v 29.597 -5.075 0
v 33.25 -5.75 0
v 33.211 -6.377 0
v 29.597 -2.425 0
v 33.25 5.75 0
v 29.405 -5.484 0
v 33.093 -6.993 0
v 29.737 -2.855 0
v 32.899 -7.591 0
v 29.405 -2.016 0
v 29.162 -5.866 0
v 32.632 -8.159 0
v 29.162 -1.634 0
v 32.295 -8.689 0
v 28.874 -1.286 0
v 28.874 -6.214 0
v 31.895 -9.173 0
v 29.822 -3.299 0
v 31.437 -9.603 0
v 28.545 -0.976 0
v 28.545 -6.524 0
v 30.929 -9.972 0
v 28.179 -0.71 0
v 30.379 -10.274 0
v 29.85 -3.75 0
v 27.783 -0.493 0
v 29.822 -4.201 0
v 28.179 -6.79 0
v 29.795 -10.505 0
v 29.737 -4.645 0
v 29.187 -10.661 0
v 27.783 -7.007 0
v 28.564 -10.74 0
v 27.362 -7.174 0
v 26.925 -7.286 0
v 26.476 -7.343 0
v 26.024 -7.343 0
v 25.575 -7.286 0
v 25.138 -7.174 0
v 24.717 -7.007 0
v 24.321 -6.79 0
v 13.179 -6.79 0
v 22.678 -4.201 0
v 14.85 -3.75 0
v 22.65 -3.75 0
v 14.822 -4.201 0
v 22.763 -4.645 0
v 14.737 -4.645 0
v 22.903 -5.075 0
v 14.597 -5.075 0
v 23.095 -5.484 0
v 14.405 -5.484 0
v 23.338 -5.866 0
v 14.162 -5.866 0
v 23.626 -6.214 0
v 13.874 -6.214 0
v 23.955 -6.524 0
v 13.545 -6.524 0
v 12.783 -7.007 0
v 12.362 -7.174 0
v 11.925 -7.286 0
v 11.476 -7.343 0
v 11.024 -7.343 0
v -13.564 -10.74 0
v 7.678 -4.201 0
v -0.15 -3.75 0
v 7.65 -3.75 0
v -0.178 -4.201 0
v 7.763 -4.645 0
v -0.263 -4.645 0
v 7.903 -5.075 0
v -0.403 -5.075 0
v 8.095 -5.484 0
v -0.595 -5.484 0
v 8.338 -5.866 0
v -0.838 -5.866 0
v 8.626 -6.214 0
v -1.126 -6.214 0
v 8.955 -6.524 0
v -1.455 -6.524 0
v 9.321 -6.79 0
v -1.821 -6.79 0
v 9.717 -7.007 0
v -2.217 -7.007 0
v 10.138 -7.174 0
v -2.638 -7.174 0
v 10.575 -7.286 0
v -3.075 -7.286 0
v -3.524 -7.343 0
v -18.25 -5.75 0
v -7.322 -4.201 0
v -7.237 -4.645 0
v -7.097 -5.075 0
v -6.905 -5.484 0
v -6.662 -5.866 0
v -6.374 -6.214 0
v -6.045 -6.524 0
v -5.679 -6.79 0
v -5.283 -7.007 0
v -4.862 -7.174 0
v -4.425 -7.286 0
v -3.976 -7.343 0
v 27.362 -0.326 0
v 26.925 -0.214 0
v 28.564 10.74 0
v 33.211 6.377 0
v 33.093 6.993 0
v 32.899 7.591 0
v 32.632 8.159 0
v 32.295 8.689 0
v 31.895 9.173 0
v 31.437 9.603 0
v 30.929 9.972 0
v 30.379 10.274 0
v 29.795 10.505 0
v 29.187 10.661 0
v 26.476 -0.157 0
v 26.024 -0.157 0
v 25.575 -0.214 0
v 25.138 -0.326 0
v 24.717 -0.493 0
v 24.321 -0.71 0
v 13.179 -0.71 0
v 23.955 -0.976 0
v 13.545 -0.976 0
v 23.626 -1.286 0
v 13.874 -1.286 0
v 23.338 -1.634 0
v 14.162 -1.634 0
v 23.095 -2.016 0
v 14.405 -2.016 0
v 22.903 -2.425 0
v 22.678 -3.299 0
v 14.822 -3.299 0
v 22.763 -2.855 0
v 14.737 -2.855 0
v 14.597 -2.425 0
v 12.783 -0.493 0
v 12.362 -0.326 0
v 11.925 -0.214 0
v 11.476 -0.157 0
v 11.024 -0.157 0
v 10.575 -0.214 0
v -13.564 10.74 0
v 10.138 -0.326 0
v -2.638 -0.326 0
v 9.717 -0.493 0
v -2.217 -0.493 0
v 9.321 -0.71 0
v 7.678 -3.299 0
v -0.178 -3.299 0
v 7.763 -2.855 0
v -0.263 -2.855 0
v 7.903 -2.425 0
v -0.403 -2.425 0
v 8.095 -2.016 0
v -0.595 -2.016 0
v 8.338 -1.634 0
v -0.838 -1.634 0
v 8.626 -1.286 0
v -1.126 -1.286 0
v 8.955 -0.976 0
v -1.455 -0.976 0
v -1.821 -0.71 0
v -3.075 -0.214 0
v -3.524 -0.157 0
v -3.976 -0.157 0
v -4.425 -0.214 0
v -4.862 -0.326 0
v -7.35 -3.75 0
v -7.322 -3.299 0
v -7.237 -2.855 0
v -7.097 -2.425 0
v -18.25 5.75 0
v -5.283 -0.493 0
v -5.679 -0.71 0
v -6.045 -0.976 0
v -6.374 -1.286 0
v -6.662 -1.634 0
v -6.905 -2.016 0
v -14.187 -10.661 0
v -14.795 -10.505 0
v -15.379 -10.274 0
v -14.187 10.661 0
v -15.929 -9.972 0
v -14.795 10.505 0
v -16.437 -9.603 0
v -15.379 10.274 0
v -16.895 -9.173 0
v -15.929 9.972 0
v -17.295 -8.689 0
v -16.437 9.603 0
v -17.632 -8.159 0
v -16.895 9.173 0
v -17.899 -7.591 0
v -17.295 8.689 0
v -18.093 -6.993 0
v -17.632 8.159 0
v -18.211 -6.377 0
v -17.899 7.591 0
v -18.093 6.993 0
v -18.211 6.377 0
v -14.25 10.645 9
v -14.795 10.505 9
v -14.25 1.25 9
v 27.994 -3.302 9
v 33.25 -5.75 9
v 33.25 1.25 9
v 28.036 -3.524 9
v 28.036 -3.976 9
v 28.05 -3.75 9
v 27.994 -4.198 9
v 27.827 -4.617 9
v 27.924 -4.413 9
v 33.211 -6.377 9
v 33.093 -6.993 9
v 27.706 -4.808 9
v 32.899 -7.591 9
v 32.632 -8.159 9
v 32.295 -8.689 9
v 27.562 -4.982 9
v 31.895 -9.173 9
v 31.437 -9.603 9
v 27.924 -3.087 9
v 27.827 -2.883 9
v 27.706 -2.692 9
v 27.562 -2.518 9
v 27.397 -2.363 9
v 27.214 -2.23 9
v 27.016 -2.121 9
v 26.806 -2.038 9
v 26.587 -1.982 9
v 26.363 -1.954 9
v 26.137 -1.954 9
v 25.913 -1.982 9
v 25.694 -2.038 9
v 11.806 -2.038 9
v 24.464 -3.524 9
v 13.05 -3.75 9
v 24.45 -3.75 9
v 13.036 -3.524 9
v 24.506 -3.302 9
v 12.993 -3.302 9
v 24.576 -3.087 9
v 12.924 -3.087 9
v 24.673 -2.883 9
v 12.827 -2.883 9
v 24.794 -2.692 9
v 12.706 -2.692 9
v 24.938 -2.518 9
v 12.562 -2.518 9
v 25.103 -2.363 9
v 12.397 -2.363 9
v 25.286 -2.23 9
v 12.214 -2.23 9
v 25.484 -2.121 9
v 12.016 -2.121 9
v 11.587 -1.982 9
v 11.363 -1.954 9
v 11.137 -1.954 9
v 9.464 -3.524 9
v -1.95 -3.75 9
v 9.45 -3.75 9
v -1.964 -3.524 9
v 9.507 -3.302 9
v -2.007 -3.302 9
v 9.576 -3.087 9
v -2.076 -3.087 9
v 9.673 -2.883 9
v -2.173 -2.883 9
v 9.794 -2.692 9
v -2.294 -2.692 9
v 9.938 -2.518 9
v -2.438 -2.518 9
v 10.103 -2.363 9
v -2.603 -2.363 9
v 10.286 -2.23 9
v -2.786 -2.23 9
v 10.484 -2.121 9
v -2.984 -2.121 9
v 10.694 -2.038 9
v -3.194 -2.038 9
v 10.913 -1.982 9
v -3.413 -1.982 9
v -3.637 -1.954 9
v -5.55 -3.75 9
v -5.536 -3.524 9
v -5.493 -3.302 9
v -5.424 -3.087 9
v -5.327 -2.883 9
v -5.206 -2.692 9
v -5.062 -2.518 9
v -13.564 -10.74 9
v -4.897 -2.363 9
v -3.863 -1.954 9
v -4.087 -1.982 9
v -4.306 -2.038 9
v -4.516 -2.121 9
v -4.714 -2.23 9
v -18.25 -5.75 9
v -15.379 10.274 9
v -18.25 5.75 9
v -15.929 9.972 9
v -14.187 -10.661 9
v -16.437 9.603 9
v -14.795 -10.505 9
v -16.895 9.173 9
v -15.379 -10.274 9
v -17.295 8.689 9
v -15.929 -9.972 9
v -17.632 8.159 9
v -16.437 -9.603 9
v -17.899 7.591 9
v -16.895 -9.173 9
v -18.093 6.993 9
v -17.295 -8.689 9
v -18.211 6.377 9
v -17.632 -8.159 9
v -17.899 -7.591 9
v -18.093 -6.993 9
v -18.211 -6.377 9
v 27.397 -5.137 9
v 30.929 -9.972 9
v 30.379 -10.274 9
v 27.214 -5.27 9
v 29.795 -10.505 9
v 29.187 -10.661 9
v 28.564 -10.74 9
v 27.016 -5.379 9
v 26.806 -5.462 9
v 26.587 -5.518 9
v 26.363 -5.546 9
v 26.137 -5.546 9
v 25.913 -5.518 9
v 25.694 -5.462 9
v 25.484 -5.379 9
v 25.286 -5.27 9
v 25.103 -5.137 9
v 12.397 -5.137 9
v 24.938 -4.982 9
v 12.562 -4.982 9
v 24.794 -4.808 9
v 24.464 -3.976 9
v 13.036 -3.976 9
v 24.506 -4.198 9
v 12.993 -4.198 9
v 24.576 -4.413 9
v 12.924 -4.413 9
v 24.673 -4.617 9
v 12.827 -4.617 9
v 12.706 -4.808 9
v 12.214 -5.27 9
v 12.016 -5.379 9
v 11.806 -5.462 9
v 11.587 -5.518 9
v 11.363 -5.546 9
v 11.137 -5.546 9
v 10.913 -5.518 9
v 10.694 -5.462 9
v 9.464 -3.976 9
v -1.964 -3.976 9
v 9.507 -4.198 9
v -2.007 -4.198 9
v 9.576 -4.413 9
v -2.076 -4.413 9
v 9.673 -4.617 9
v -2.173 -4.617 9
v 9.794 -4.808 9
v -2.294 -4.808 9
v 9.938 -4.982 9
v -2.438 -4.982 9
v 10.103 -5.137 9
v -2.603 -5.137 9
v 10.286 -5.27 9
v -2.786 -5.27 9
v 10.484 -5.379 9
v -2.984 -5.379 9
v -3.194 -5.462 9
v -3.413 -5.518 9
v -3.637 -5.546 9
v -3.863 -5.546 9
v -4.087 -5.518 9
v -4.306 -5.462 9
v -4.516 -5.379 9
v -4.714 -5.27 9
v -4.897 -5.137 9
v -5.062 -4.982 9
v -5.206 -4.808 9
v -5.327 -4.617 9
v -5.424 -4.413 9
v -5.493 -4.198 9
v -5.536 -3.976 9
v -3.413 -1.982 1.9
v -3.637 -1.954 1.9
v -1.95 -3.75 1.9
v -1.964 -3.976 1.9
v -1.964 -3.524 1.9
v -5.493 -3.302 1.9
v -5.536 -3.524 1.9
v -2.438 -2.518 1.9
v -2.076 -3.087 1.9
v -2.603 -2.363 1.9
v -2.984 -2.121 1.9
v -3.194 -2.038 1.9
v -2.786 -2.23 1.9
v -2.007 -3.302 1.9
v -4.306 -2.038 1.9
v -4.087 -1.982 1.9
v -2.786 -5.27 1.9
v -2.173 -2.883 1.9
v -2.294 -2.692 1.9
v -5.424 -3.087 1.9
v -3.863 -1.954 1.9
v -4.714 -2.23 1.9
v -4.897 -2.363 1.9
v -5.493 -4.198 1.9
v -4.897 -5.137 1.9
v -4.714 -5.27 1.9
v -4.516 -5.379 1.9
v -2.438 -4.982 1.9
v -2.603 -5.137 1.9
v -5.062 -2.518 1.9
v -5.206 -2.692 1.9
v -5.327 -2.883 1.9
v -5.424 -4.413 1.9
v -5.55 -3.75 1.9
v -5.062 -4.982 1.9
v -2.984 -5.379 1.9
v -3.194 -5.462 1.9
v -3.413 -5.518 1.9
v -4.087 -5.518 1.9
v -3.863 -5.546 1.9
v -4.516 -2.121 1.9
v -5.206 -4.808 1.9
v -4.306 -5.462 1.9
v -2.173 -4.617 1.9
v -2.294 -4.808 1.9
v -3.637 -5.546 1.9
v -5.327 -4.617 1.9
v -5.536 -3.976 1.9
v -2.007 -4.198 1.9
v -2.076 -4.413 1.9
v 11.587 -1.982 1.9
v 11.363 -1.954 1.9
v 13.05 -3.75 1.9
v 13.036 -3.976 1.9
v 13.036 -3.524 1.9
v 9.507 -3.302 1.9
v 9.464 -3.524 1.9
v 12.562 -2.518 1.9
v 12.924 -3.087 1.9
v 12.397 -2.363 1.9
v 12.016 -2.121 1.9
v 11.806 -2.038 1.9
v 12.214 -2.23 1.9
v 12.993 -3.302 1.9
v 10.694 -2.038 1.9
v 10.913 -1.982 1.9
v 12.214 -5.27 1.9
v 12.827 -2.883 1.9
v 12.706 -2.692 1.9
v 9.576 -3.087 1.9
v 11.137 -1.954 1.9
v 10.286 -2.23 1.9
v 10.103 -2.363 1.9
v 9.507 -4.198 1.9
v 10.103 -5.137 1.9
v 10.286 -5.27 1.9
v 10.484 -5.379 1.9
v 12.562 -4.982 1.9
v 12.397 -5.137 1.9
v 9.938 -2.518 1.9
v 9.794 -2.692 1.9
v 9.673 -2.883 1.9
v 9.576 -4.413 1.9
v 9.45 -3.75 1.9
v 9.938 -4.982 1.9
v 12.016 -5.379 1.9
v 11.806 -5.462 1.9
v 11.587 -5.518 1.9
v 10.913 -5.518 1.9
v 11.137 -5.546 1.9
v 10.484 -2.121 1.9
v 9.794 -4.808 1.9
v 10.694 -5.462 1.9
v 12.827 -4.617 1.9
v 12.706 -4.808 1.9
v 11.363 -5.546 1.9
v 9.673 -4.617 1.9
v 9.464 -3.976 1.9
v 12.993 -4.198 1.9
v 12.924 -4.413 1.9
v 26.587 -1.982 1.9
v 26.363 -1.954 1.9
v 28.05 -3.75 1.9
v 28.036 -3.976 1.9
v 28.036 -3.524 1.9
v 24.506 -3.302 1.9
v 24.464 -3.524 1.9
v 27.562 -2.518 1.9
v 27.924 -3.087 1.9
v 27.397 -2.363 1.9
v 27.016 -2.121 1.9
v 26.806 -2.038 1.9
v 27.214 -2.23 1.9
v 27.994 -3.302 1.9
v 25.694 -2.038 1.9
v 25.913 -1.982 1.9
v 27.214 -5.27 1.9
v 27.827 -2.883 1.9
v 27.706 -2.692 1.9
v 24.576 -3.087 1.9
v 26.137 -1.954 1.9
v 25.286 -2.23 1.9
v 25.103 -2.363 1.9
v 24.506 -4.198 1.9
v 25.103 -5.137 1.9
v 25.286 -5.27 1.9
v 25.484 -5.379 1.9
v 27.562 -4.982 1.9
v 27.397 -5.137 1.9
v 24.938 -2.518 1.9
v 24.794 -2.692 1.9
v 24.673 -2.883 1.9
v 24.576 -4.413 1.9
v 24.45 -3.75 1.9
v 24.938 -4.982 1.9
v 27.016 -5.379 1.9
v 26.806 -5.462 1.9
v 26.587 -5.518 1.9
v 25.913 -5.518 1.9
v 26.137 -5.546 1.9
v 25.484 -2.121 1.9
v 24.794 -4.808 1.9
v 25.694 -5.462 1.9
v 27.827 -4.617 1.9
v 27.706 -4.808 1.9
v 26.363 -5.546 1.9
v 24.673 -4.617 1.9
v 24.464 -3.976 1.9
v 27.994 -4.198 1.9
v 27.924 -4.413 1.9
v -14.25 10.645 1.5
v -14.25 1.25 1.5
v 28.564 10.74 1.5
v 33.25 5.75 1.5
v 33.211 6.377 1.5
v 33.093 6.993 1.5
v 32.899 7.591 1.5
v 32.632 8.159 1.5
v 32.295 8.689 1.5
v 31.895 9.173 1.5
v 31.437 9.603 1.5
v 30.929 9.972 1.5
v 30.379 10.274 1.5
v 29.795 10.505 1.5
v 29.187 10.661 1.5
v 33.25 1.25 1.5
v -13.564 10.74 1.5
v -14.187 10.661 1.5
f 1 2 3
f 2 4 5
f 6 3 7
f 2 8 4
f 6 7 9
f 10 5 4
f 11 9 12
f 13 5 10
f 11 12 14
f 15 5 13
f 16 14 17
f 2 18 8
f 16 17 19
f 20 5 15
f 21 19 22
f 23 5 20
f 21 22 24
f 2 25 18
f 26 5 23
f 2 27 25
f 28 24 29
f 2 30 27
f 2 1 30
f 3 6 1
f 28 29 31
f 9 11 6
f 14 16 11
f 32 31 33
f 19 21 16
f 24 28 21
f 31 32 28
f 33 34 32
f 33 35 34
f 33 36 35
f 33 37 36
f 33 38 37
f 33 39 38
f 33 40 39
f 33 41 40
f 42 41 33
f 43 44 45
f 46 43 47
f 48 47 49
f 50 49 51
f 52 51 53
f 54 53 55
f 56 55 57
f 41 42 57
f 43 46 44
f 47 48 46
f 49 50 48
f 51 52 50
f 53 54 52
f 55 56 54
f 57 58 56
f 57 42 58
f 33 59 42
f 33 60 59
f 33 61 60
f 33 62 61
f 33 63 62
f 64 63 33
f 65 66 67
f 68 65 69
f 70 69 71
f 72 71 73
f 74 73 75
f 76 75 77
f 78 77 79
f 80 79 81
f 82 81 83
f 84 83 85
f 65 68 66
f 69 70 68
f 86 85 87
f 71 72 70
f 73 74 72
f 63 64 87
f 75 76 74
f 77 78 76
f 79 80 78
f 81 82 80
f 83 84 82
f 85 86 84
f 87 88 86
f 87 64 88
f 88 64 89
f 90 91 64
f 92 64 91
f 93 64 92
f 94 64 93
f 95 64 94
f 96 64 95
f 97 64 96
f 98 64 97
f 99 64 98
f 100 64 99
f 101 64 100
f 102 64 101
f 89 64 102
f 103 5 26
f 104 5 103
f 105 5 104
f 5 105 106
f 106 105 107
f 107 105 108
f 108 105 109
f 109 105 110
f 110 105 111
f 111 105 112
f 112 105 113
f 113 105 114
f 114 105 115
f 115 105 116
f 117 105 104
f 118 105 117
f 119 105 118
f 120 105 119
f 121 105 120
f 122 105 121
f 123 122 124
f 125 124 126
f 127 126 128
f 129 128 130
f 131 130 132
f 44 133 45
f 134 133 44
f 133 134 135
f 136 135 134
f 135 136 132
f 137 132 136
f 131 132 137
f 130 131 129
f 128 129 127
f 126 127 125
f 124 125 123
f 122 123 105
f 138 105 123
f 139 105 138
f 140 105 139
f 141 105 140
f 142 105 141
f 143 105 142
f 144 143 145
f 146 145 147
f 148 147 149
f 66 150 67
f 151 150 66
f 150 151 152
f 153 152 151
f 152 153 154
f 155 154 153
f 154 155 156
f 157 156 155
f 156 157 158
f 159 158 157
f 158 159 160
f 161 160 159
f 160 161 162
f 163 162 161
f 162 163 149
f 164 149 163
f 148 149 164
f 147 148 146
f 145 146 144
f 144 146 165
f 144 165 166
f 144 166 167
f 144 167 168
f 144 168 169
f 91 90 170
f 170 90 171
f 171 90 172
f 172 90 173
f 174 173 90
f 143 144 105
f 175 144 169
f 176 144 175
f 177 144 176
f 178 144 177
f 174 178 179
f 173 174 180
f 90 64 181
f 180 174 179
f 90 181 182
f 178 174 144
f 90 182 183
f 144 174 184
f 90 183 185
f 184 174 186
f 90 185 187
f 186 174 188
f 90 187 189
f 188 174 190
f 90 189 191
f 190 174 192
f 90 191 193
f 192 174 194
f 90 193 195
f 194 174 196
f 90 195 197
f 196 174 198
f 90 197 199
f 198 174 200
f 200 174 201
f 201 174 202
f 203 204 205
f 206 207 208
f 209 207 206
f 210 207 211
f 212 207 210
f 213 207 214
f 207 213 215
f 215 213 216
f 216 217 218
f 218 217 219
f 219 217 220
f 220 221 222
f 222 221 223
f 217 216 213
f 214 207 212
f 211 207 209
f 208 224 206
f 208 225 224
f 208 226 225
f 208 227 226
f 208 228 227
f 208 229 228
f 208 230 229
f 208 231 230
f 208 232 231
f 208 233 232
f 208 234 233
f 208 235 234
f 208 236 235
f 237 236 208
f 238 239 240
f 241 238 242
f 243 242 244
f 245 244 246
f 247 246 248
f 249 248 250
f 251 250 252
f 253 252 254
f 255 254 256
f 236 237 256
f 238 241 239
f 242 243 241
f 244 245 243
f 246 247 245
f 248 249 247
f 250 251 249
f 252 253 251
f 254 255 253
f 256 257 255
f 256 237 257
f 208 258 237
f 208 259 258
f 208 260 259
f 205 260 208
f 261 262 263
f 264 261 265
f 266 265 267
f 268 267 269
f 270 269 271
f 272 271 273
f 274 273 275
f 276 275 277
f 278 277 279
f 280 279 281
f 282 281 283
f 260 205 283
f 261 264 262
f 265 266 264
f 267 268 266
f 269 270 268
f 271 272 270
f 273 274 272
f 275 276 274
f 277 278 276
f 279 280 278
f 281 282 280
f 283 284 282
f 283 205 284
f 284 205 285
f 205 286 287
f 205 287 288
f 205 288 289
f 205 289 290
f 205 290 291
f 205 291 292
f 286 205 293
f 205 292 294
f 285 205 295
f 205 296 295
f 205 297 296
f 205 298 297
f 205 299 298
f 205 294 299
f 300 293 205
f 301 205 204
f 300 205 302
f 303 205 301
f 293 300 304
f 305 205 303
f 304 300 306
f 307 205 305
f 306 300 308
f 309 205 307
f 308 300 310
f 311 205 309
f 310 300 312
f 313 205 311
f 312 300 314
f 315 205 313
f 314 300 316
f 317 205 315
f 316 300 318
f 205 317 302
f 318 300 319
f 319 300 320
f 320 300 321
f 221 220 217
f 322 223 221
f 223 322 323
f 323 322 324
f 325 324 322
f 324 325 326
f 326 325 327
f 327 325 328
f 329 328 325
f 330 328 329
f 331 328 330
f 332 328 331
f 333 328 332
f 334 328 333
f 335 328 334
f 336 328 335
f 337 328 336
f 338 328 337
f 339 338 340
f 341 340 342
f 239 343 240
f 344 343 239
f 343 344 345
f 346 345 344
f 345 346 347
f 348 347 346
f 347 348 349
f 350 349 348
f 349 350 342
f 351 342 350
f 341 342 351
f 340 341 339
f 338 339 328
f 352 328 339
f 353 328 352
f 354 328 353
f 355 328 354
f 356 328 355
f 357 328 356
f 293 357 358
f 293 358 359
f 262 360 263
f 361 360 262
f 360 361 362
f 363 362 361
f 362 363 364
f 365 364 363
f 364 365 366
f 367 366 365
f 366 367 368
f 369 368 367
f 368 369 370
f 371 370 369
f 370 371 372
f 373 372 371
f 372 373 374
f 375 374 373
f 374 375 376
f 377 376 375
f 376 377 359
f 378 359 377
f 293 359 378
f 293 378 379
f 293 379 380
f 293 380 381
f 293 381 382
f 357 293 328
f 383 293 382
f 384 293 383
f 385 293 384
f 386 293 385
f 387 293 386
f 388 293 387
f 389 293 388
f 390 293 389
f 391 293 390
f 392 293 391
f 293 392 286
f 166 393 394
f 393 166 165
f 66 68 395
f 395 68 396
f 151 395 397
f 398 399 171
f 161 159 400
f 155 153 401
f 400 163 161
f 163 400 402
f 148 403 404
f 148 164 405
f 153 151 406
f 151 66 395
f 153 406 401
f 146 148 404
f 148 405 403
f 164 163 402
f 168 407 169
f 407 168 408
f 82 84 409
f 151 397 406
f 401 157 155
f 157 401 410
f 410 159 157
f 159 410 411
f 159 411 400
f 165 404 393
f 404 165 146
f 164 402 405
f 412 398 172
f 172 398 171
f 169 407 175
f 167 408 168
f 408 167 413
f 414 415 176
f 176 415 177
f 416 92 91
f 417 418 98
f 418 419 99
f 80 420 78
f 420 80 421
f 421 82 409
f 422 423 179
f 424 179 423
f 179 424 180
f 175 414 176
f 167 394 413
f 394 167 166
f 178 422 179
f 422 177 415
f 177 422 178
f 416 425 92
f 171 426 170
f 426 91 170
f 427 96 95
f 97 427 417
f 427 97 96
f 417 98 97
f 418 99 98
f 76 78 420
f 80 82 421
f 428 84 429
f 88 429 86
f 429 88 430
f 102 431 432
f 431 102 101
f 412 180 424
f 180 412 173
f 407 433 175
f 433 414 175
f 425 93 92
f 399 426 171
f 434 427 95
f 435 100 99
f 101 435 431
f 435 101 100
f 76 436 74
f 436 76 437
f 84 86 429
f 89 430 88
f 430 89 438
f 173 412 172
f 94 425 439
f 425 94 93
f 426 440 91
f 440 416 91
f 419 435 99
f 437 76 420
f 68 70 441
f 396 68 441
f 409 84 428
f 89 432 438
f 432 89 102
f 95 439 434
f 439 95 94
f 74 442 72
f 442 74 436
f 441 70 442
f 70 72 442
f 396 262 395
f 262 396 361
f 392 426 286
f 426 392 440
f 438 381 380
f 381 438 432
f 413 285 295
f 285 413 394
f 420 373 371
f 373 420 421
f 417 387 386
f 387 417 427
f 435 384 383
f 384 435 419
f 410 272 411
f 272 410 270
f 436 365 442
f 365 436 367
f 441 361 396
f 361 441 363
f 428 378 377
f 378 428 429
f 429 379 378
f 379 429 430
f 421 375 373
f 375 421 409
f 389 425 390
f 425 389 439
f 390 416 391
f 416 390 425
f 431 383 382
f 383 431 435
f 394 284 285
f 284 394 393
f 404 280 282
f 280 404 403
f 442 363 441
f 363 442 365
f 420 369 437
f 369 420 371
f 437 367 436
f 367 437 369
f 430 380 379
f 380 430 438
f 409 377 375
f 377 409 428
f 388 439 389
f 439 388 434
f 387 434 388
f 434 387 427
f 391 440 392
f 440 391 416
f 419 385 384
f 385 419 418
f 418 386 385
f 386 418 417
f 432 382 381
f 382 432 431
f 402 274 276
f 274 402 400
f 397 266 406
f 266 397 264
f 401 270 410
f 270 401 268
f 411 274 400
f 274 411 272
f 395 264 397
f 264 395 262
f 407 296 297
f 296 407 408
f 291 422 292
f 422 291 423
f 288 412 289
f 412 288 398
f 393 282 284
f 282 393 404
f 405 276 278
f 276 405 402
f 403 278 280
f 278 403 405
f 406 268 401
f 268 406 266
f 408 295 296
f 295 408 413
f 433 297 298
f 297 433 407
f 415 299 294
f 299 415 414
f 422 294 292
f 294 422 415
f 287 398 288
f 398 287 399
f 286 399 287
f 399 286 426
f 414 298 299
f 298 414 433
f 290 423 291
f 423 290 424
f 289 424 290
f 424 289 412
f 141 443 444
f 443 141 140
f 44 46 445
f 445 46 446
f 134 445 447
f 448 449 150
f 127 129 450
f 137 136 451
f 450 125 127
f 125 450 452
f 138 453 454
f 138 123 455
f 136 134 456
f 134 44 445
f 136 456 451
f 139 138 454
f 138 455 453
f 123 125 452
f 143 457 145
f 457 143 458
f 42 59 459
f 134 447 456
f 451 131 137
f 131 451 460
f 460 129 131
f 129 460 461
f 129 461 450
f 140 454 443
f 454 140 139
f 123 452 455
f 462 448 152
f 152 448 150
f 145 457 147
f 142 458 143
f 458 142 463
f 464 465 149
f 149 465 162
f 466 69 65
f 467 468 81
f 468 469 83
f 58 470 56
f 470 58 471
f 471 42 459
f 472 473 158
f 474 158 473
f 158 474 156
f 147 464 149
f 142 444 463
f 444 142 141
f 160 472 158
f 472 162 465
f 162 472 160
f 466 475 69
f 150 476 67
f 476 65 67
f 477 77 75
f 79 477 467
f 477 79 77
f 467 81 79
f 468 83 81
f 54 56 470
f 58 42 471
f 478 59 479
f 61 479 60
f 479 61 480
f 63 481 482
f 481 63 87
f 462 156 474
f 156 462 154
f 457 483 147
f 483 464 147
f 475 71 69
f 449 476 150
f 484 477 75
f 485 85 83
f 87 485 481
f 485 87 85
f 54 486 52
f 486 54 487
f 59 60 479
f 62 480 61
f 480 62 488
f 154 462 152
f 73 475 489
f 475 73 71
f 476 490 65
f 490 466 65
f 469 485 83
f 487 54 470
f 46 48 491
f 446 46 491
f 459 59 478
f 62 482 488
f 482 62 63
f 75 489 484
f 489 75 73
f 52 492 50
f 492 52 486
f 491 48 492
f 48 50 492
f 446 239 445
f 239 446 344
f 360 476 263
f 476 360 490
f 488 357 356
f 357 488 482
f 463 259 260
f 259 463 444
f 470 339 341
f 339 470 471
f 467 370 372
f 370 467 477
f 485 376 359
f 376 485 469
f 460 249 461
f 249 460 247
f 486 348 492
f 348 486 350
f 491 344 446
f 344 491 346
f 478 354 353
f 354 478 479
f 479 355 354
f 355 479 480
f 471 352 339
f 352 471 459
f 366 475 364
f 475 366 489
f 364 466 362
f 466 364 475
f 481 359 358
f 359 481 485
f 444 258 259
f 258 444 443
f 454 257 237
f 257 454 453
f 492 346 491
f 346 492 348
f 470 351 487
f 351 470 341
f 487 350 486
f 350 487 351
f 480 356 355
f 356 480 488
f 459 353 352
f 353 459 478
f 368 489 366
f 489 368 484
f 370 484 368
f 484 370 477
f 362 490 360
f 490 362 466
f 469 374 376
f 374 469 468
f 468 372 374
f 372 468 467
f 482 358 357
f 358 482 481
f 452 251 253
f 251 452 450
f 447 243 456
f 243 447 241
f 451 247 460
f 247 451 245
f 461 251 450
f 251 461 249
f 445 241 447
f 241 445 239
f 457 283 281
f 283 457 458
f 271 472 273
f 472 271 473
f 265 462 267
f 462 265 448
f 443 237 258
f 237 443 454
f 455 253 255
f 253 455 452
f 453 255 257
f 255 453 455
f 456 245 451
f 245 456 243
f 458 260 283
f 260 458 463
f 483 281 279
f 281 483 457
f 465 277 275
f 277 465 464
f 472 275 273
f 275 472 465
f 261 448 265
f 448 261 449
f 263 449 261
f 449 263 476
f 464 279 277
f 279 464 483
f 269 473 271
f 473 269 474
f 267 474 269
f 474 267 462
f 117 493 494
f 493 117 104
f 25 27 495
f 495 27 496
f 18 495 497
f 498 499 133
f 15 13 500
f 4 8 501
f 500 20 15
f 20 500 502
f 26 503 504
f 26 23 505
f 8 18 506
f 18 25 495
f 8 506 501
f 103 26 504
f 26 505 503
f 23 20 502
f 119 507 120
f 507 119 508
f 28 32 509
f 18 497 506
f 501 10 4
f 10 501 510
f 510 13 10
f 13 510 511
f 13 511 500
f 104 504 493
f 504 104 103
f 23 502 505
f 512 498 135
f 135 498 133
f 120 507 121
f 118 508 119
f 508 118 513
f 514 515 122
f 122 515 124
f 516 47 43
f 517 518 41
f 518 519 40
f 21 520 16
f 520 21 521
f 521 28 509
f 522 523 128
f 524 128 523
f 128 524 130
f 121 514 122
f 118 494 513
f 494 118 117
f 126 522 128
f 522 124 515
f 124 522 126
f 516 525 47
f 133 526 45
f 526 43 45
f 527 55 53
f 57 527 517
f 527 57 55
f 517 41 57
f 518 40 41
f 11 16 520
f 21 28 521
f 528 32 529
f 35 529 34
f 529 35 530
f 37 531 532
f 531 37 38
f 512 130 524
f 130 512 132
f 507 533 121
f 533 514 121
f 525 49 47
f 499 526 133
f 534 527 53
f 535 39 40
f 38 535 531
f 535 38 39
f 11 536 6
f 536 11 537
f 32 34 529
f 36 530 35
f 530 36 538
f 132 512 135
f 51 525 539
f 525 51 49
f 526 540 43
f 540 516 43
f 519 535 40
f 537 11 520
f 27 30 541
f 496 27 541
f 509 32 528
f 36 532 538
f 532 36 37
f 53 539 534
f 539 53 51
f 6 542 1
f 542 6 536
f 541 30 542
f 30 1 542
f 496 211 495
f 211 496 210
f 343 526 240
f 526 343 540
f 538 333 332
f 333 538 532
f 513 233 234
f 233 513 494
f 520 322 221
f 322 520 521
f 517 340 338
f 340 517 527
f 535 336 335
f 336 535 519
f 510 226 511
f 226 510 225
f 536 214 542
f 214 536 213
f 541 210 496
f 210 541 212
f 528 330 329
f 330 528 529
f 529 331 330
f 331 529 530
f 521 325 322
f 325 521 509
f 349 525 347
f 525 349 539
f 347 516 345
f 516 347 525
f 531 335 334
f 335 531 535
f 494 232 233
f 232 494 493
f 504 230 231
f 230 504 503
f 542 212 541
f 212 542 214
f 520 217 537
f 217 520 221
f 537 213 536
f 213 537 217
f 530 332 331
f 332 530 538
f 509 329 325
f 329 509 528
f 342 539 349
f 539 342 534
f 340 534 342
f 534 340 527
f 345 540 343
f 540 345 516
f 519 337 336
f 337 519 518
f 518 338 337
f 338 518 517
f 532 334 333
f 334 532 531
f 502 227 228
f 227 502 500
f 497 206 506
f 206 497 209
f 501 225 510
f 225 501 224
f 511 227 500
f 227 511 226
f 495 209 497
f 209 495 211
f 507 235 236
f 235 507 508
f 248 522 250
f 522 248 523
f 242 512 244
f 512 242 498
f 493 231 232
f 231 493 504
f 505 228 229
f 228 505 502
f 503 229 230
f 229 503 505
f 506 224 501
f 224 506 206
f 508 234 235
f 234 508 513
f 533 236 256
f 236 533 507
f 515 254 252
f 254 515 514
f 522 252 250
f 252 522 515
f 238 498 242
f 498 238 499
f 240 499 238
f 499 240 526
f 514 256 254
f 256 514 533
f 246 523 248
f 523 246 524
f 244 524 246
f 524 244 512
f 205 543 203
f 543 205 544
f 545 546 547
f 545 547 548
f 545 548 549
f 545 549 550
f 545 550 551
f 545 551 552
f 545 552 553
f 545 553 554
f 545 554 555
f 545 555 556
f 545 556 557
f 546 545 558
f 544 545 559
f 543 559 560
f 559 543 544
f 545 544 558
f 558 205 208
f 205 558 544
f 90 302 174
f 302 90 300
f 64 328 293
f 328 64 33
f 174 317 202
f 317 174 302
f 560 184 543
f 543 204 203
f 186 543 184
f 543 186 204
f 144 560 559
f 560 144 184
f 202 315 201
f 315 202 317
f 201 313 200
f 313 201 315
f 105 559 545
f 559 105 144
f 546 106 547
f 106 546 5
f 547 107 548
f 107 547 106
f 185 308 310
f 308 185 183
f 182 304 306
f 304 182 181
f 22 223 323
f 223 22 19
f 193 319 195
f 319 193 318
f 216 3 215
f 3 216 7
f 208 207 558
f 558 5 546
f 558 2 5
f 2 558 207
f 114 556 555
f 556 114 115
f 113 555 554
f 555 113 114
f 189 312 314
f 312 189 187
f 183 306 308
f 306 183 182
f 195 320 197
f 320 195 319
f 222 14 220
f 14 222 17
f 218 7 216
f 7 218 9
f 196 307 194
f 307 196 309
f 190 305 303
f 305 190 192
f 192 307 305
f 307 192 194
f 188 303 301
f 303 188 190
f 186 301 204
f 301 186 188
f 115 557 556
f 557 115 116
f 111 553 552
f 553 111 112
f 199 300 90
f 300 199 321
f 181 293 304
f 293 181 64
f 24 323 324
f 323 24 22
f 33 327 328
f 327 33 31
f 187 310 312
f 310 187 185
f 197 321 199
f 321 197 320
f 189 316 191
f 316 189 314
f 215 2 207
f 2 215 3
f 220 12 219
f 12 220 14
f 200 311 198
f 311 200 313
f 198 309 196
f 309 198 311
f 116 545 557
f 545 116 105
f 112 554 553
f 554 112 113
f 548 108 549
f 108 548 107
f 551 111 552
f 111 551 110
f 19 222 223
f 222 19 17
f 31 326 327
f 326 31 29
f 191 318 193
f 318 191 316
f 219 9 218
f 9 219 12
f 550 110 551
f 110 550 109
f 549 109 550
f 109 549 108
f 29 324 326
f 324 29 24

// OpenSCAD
$fn = 50;


difference() {
	union() {
		translate(v = [7.5000000000, 0, 0]) {
			hull() {
				translate(v = [-20.7500000000, 5.7500000000, 0]) {
					cylinder(h = 9, r = 5);
				}
				translate(v = [20.7500000000, 5.7500000000, 0]) {
					cylinder(h = 9, r = 5);
				}
				translate(v = [-20.7500000000, -5.7500000000, 0]) {
					cylinder(h = 9, r = 5);
				}
				translate(v = [20.7500000000, -5.7500000000, 0]) {
					cylinder(h = 9, r = 5);
				}
			}
		}
	}
	union() {
		translate(v = [-3.7500000000, -3.7500000000, 0]) {
			rotate(a = [180, 0, 0]) {
				difference() {
					union() {
						#translate(v = [0, 0, -9.0000000000]) {
							cylinder(h = 9, r = 1.5000000000);
						}
						#translate(v = [0, 0, -1.9000000000]) {
							cylinder(h = 1.9000000000, r1 = 1.8000000000, r2 = 3.6000000000);
						}
						#translate(v = [0, 0, -9.0000000000]) {
							cylinder(h = 9, r = 1.8000000000);
						}
						#translate(v = [0, 0, -9.0000000000]) {
							cylinder(h = 9, r = 1.5000000000);
						}
					}
					union();
				}
			}
		}
		translate(v = [11.2500000000, -3.7500000000, 0]) {
			rotate(a = [180, 0, 0]) {
				difference() {
					union() {
						#translate(v = [0, 0, -9.0000000000]) {
							cylinder(h = 9, r = 1.5000000000);
						}
						#translate(v = [0, 0, -1.9000000000]) {
							cylinder(h = 1.9000000000, r1 = 1.8000000000, r2 = 3.6000000000);
						}
						#translate(v = [0, 0, -9.0000000000]) {
							cylinder(h = 9, r = 1.8000000000);
						}
						#translate(v = [0, 0, -9.0000000000]) {
							cylinder(h = 9, r = 1.5000000000);
						}
					}
					union();
				}
			}
		}
		translate(v = [26.2500000000, -3.7500000000, 0]) {
			rotate(a = [180, 0, 0]) {
				difference() {
					union() {
						#translate(v = [0, 0, -9.0000000000]) {
							cylinder(h = 9, r = 1.5000000000);
						}
						#translate(v = [0, 0, -1.9000000000]) {
							cylinder(h = 1.9000000000, r1 = 1.8000000000, r2 = 3.6000000000);
						}
						#translate(v = [0, 0, -9.0000000000]) {
							cylinder(h = 9, r = 1.8000000000);
						}
						#translate(v = [0, 0, -9.0000000000]) {
							cylinder(h = 9, r = 1.5000000000);
						}
					}
					union();
				}
			}
		}
		translate(v = [41.2500000000, -3.7500000000, 0]) {
			rotate(a = [180, 0, 0]) {
				difference() {
					union() {
						#translate(v = [0, 0, -9.0000000000]) {
							cylinder(h = 9, r = 1.5000000000);
						}
						#translate(v = [0, 0, -1.9000000000]) {
							cylinder(h = 1.9000000000, r1 = 1.8000000000, r2 = 3.6000000000);
						}
						#translate(v = [0, 0, -9.0000000000]) {
							cylinder(h = 9, r = 1.8000000000);
						}
						#translate(v = [0, 0, -9.0000000000]) {
							cylinder(h = 9, r = 1.5000000000);
						}
					}
					union();
				}
			}
		}
		#translate(v = [-14.2500000000, 1.2500000000, 1.5000000000]) {
			cube(size = [156, 100, 7.5000000000]);
		}
	}
}
